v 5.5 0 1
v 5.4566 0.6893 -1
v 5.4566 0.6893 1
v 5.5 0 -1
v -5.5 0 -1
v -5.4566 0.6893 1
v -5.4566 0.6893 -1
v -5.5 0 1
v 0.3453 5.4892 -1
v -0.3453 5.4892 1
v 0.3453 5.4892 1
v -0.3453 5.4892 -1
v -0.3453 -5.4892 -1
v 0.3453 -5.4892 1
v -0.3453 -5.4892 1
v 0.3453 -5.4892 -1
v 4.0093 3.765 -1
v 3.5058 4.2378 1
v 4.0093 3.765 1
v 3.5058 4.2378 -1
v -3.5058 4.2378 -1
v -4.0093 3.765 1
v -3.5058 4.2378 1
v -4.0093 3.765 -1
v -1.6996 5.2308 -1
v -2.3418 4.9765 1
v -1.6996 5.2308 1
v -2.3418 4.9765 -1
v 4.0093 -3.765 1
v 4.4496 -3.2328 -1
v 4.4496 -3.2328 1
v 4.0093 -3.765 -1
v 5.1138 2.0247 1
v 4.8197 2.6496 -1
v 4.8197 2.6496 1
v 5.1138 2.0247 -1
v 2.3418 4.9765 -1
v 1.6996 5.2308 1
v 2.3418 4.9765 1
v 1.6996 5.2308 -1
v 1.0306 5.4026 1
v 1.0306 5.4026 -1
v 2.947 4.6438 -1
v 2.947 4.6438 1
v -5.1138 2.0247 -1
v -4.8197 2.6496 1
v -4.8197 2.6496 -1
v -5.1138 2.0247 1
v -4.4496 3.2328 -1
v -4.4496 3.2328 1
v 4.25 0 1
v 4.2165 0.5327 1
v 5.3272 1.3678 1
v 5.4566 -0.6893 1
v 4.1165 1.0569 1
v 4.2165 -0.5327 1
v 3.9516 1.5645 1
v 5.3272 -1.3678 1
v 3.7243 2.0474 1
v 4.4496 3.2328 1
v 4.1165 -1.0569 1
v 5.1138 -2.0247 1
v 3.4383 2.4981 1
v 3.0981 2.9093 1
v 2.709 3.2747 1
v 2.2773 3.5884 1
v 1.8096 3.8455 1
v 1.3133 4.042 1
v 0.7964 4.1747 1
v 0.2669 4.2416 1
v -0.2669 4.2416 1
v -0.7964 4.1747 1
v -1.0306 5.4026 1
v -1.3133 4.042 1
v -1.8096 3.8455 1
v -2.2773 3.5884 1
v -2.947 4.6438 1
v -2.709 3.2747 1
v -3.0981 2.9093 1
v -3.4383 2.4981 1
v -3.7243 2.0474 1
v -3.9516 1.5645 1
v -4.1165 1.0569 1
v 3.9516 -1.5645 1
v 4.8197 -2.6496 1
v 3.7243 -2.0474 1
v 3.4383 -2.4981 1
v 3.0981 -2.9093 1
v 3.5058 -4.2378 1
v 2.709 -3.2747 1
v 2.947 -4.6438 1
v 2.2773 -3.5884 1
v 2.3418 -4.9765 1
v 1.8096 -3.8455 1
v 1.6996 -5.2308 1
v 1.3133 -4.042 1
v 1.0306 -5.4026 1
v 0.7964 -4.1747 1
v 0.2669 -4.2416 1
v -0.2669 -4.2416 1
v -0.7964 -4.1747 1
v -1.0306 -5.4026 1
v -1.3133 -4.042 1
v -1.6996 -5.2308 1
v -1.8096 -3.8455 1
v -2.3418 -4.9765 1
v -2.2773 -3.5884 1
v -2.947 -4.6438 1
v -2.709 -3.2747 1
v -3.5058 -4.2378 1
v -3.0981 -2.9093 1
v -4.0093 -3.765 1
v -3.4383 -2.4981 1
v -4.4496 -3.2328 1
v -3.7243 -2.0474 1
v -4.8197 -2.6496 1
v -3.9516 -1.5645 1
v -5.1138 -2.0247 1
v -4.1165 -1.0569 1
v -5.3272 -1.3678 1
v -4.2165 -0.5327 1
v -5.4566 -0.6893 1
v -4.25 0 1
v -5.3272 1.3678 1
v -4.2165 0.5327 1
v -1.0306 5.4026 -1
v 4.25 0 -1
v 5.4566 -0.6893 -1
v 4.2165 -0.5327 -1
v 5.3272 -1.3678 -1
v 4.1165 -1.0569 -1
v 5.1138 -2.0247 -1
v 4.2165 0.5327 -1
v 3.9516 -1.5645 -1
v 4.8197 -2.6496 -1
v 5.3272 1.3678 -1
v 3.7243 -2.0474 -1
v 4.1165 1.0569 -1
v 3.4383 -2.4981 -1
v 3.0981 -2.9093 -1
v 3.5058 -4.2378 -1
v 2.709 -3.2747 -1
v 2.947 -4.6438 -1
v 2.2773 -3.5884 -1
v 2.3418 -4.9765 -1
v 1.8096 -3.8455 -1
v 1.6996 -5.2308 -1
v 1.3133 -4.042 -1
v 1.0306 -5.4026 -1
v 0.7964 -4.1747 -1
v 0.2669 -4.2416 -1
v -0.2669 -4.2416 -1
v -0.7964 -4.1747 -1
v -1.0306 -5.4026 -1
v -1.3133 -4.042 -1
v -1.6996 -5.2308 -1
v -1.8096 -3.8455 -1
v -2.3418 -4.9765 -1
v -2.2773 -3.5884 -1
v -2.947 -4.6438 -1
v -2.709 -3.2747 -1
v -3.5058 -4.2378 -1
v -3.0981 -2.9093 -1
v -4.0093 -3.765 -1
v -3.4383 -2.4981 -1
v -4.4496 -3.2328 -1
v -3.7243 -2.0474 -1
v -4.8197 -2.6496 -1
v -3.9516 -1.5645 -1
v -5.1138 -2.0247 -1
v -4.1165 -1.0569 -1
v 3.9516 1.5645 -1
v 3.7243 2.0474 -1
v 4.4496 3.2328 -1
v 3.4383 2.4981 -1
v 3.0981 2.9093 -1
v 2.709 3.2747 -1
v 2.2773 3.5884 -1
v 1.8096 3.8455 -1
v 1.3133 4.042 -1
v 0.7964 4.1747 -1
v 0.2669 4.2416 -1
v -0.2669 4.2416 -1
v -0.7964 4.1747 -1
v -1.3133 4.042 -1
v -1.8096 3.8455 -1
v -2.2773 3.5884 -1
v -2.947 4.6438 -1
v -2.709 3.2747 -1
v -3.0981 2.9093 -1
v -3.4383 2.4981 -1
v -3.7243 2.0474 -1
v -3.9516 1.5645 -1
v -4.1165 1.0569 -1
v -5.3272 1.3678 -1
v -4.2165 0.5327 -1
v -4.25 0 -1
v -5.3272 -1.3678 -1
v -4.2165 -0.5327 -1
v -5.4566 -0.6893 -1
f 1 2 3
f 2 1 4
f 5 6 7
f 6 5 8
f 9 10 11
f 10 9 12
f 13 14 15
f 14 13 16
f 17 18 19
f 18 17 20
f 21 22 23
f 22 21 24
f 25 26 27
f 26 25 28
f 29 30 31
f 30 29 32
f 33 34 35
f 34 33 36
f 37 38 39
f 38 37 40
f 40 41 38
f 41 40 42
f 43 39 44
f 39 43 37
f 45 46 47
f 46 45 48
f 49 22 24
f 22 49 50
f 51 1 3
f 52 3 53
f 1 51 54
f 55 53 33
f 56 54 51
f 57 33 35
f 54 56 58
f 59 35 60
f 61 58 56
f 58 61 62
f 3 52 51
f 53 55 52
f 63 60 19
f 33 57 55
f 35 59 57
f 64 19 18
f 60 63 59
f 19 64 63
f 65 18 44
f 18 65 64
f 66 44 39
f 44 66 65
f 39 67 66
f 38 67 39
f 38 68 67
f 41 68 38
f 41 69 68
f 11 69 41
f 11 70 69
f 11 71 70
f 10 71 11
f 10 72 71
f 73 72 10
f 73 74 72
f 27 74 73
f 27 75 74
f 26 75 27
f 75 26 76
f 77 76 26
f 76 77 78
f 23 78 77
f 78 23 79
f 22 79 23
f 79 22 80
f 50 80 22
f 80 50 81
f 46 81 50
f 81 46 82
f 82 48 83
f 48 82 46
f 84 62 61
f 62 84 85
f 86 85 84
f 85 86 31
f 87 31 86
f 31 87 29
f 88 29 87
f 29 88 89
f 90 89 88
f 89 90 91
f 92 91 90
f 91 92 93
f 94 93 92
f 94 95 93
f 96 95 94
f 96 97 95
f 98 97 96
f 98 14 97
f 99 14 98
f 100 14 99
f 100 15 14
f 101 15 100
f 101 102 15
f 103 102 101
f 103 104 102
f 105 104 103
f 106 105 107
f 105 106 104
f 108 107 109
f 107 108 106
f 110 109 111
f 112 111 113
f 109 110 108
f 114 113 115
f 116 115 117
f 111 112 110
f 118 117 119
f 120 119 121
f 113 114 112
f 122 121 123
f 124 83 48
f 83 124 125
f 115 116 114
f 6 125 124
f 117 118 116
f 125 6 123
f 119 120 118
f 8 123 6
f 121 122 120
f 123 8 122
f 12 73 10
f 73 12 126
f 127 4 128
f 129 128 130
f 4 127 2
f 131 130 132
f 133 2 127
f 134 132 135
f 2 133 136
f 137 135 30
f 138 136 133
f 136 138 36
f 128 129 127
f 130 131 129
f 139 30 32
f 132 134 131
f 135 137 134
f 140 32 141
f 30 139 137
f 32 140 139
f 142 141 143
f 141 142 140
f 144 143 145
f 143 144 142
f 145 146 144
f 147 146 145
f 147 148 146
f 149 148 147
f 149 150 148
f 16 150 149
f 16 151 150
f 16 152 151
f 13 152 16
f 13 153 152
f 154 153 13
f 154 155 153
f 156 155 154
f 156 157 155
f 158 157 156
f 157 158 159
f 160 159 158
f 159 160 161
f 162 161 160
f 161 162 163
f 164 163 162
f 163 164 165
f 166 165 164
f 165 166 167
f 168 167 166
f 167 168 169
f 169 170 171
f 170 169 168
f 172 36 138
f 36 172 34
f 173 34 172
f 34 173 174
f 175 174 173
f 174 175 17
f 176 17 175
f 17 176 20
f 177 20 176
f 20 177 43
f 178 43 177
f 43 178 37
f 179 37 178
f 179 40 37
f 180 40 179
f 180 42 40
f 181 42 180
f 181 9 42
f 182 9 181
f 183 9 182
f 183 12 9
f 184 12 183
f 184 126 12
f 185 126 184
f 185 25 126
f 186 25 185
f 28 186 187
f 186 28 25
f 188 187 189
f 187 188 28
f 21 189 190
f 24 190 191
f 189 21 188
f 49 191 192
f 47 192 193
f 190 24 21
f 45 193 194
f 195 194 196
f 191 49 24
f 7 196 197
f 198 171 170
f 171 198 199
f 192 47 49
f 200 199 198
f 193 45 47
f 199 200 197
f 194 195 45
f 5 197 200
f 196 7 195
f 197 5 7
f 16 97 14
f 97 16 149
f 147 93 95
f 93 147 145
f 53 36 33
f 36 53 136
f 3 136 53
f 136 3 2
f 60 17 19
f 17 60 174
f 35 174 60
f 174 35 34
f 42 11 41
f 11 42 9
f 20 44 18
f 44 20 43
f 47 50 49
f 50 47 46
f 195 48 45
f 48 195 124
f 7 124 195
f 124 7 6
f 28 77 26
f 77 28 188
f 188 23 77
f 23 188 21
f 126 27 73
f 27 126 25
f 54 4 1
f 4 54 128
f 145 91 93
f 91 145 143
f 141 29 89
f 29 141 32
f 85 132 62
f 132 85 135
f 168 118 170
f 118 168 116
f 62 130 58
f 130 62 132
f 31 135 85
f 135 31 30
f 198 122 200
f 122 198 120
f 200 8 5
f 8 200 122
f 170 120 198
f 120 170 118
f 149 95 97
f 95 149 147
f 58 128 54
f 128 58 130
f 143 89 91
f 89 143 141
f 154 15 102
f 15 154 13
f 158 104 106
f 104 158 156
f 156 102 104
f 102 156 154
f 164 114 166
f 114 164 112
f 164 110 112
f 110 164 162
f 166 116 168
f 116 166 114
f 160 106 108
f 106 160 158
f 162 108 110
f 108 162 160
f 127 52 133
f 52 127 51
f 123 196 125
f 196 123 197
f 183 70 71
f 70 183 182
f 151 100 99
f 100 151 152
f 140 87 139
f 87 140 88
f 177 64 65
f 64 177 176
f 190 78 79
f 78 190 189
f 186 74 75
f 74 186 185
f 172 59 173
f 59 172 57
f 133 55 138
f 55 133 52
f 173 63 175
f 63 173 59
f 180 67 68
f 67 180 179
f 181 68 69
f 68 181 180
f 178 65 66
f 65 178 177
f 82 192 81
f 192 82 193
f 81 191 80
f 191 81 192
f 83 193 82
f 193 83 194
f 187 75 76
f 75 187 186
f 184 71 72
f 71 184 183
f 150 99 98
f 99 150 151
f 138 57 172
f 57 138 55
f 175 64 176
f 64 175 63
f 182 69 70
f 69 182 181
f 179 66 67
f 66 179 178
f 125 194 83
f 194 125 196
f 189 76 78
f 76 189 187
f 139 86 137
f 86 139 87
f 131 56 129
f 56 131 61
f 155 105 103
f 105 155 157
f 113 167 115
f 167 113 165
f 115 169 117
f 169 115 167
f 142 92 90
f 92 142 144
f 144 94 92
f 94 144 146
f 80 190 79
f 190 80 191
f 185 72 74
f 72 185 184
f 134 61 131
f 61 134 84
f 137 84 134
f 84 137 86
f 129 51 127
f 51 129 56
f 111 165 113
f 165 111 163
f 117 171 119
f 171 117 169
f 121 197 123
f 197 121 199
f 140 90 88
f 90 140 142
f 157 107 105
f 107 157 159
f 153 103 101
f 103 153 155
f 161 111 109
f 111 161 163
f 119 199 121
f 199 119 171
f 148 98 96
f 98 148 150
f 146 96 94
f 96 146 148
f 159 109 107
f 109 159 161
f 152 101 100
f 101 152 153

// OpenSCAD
$fn = 50;


difference() {
	union() {
		translate(v = [0, 0, -1.0000000000]) {
			cylinder(h = 2, r = 5.5000000000);
		}
	}
	union() {
		translate(v = [0, 0, -100.0000000000]) {
			cylinder(h = 200, r = 4.2500000000);
		}
	}
}
